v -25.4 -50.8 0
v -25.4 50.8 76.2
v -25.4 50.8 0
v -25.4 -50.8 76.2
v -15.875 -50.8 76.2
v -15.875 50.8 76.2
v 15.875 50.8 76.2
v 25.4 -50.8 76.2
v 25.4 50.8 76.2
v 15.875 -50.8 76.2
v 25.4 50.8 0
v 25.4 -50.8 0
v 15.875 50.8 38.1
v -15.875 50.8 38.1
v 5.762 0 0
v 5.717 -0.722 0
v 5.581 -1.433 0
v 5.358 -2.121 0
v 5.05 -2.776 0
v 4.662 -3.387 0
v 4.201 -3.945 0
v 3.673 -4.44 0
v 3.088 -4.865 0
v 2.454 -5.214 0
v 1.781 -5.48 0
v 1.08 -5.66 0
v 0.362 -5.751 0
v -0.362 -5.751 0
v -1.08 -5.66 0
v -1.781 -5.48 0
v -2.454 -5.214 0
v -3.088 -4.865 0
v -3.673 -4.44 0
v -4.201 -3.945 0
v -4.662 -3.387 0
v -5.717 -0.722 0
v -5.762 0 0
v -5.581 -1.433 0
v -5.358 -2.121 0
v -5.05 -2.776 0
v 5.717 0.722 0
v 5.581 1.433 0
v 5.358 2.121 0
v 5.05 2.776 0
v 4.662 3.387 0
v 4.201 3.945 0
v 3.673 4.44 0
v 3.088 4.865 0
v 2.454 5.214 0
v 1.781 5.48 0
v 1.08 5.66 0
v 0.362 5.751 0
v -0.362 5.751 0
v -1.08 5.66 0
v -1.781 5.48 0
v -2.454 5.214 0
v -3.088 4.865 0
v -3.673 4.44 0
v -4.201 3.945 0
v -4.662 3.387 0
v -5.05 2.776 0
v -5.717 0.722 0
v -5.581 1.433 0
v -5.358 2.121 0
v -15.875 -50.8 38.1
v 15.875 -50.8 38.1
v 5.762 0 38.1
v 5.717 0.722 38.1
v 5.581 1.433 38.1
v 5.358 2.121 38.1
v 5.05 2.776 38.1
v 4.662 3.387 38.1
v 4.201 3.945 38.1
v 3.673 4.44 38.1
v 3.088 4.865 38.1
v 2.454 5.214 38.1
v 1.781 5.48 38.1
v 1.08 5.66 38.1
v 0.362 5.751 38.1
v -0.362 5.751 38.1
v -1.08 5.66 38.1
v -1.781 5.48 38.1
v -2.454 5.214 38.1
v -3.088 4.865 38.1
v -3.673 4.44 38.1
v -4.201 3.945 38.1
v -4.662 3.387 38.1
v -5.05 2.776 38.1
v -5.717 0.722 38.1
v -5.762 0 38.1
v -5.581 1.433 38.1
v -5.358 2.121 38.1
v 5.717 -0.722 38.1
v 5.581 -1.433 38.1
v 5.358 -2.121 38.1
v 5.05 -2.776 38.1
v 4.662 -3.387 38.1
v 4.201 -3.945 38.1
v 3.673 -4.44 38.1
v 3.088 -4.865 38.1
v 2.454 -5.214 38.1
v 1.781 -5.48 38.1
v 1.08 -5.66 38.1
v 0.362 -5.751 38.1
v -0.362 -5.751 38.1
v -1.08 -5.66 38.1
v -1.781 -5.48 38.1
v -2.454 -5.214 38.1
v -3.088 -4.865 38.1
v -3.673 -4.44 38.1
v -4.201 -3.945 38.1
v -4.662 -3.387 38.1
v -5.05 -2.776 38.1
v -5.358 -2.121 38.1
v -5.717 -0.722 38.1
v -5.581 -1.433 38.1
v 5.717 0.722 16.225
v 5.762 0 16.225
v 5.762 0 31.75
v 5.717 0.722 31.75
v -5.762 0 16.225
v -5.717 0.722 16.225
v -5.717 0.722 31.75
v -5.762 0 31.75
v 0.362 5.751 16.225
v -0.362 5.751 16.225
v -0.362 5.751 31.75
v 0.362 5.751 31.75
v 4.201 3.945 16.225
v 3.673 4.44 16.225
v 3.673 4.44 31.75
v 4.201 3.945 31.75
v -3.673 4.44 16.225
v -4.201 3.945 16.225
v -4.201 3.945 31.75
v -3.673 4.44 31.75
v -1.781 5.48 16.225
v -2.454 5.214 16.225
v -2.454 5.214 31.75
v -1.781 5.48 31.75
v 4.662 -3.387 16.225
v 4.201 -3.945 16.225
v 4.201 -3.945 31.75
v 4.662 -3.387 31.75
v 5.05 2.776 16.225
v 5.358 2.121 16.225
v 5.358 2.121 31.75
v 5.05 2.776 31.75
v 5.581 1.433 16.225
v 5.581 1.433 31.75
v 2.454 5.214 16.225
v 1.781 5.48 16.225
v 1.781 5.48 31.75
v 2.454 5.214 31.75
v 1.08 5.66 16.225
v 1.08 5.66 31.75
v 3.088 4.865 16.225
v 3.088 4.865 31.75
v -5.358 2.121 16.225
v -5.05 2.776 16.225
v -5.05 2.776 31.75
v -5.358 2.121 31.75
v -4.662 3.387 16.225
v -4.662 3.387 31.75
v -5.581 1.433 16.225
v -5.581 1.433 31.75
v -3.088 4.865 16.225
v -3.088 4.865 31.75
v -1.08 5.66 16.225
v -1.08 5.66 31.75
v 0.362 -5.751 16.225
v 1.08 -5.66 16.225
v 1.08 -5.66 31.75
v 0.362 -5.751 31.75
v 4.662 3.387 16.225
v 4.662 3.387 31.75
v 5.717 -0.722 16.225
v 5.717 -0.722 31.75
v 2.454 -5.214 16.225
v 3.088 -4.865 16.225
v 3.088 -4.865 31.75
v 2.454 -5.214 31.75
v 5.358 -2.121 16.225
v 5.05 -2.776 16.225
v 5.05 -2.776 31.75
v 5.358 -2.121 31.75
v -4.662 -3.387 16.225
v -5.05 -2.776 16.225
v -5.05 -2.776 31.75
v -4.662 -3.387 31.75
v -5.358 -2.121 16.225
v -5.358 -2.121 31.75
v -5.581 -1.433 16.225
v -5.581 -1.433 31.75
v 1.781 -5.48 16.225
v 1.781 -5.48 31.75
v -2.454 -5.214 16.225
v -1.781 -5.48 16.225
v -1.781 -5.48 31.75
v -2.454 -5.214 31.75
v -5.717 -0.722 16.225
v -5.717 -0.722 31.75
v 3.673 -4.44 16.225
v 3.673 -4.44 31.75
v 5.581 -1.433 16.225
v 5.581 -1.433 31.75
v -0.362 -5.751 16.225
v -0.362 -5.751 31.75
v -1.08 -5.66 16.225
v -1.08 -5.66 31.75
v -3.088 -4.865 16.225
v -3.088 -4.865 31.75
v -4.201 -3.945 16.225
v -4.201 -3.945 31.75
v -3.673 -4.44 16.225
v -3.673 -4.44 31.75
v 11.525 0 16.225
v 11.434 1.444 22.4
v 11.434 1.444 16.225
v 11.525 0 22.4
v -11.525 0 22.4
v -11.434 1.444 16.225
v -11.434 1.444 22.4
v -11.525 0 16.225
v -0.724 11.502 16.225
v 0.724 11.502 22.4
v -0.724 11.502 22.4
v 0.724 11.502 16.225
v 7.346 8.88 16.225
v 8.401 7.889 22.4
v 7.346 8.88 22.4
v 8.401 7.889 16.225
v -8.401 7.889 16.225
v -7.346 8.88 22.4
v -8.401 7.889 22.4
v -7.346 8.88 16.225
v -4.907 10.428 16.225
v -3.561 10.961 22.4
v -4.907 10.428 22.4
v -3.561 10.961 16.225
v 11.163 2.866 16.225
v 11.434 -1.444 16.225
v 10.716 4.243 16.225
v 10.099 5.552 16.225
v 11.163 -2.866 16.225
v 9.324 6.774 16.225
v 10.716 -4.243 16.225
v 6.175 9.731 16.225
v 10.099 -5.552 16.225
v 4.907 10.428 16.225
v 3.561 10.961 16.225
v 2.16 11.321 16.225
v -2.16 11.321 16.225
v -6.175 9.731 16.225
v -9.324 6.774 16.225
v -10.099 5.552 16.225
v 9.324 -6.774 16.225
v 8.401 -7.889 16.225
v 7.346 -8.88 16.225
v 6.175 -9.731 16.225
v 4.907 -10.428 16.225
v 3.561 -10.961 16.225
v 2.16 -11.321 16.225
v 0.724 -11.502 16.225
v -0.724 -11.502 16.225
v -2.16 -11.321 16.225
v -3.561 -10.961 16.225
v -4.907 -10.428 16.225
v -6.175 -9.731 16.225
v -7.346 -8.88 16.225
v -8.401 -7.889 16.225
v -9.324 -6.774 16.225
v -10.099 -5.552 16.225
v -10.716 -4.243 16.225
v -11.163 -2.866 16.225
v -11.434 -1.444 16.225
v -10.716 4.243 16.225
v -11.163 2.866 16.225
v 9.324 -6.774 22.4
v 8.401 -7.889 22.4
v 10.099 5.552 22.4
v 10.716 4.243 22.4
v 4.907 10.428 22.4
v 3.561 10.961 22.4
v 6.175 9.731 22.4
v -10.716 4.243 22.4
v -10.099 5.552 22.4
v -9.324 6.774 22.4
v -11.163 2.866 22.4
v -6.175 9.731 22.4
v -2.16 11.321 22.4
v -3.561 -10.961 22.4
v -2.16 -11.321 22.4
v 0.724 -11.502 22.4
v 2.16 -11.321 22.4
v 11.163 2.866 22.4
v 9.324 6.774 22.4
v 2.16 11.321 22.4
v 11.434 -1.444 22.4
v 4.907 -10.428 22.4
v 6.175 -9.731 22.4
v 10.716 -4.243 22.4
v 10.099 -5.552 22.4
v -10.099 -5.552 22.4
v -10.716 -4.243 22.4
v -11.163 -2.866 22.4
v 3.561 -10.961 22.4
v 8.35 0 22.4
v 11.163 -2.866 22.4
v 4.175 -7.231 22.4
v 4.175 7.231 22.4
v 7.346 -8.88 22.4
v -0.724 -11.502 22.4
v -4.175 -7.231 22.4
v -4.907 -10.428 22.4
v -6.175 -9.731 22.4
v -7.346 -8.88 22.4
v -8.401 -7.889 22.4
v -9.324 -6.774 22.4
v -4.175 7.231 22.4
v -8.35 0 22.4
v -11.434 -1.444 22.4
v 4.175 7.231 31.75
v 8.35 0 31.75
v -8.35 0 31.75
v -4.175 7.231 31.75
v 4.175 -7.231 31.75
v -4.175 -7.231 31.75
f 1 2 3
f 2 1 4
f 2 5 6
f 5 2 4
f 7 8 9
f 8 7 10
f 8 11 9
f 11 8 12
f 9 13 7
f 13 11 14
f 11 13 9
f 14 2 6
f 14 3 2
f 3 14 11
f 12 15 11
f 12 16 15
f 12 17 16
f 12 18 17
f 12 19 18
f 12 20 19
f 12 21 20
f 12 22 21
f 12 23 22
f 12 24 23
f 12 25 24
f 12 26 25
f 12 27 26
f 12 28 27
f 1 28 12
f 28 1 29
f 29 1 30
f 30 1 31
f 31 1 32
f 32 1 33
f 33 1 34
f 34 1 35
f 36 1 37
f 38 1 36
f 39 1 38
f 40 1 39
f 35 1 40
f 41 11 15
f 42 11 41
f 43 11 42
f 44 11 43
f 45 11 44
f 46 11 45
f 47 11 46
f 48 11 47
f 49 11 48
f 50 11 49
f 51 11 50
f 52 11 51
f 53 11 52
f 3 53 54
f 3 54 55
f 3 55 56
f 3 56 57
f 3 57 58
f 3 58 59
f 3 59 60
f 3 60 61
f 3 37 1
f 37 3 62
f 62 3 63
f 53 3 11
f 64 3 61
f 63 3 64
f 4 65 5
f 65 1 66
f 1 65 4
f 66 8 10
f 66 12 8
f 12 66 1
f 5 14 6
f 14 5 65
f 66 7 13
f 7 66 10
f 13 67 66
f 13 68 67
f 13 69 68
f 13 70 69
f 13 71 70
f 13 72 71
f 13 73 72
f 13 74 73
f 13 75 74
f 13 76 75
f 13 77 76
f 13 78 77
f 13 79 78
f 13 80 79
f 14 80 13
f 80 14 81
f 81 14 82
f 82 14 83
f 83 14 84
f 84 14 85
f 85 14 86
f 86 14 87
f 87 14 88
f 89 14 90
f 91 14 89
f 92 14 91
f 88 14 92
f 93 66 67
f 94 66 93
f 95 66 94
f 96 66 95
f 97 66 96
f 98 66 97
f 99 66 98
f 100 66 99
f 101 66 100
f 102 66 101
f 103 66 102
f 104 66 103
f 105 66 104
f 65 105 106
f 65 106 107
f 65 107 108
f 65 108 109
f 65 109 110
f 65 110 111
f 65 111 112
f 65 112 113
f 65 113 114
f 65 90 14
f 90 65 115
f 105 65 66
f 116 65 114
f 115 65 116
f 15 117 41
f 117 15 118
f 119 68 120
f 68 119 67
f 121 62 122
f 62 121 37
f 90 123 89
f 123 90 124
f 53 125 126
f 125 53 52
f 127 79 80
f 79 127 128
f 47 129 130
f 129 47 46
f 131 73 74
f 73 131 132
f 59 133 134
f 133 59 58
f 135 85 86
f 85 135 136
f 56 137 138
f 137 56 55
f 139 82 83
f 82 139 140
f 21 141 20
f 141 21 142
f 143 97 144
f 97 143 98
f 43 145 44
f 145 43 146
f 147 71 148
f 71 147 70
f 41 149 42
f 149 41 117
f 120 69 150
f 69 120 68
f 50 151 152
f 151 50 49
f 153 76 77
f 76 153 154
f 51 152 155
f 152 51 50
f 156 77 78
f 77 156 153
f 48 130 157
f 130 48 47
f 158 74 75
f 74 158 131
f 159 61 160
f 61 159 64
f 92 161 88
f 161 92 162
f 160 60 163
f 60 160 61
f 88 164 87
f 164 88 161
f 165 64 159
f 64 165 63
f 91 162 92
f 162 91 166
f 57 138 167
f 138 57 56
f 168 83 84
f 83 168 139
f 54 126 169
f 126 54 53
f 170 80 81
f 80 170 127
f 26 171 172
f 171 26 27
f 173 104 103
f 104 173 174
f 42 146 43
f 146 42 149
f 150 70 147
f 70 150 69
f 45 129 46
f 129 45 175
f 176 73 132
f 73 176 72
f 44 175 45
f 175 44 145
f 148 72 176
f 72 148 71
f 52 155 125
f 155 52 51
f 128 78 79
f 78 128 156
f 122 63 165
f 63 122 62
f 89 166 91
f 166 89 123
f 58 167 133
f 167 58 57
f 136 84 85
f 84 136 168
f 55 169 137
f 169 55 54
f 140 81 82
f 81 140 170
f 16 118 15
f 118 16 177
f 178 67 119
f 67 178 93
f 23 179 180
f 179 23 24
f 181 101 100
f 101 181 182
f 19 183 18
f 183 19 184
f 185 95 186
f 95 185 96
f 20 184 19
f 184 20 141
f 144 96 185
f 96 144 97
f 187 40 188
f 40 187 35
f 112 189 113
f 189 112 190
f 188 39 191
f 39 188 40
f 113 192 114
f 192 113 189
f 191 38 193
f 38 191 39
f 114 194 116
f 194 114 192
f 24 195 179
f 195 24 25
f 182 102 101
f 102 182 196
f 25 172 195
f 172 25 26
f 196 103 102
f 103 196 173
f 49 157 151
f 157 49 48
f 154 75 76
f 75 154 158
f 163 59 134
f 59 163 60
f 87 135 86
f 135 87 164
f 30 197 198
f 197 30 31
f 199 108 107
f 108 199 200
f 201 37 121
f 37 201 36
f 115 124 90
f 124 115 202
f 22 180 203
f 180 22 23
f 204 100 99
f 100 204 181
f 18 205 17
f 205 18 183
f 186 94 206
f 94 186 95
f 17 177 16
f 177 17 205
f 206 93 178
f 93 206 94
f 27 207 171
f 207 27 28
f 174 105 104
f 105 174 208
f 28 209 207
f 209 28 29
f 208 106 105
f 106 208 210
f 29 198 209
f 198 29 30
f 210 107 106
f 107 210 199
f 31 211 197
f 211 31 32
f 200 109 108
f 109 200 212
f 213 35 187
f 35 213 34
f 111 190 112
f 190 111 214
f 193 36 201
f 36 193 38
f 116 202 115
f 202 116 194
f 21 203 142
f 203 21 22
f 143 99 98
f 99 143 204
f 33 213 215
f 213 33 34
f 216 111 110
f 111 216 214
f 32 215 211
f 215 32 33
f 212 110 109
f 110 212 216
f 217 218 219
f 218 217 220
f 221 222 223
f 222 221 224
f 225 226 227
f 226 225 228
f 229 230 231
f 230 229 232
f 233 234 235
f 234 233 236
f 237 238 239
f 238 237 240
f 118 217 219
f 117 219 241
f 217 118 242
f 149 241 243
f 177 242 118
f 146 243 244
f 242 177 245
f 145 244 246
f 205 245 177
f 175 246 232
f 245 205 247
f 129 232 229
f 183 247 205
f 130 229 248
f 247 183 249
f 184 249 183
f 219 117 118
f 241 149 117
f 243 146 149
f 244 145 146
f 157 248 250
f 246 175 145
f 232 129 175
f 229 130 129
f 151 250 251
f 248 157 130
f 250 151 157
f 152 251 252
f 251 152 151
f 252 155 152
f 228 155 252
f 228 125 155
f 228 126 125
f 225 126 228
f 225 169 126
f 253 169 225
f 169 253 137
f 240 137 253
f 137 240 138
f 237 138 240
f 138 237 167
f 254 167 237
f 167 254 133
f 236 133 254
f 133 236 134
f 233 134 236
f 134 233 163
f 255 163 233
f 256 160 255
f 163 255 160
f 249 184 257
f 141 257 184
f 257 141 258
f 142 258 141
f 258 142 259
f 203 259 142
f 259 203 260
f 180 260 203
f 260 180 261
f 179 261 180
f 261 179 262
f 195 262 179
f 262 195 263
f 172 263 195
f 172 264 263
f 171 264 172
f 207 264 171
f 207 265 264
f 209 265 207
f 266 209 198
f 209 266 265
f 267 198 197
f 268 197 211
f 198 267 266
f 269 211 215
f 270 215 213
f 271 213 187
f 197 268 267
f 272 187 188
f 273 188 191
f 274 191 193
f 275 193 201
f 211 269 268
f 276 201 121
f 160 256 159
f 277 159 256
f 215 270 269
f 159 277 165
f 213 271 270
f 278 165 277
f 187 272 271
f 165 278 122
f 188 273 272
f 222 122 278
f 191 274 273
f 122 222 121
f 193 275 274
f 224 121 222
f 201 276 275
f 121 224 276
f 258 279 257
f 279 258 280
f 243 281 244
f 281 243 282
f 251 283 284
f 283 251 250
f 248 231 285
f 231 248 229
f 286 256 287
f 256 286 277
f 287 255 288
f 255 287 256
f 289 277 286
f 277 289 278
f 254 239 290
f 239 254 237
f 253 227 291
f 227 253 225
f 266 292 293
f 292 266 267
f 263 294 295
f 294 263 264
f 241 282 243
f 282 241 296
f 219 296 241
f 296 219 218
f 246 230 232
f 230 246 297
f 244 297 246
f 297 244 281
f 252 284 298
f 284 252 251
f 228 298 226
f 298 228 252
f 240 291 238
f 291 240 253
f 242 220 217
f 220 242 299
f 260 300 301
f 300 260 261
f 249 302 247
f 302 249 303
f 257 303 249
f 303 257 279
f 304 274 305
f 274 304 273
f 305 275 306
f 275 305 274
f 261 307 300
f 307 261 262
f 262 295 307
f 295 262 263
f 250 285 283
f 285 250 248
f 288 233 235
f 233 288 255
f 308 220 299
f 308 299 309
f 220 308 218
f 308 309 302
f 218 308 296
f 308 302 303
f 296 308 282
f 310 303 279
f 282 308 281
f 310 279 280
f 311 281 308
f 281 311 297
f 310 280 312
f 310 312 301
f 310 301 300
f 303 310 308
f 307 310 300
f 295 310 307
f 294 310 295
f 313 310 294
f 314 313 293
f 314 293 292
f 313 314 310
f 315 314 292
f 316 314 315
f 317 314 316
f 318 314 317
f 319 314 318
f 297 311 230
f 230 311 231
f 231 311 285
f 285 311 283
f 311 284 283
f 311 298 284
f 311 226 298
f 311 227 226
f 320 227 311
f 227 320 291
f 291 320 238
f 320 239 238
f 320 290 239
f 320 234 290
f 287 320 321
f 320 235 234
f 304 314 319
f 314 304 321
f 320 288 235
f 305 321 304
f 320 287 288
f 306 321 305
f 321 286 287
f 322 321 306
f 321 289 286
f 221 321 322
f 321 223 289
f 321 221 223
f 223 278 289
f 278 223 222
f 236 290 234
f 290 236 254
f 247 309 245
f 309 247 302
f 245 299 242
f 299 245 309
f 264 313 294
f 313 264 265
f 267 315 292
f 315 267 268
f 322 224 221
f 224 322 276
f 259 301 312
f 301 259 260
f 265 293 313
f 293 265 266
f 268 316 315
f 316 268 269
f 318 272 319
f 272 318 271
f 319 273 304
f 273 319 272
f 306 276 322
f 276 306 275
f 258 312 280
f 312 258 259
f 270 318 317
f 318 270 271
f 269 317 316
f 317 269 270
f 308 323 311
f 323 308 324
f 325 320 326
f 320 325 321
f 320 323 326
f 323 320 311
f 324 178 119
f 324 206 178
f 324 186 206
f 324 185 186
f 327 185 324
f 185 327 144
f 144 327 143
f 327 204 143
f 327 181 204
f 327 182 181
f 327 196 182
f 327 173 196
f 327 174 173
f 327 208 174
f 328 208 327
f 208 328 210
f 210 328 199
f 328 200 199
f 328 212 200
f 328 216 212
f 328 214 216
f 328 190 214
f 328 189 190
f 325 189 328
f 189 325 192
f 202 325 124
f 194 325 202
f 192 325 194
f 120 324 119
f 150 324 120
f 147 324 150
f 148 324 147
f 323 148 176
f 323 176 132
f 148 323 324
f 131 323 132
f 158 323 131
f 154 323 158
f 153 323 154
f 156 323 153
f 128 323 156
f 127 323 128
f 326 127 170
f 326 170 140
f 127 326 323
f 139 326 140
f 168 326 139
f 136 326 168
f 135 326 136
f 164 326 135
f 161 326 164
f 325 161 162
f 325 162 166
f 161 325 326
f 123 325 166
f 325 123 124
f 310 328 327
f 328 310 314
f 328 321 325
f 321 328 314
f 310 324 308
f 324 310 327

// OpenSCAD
/* File: winchwireblock.scad
 * Power cable wire junction separators
 * Author: deh
 * Latest edit: 20180701
 * 
 */


 $fn=50;

bl_wid = 25.4 * 2; 	// Overall Width of one block
bl_ht  = 25.4 * 3;	// Height
bl_len = 25.4 * 4;	// Length
bl_flr = 25.4 * 1.5;	// Bottom to floor of well
bl_w_wid = 25.4 * 1.25;	// Width of wire well




module base_block()
{
	difference()
	{
		union()
		{
			translate([0,0,bl_ht/2])
		     cube([bl_wid,bl_len,bl_ht],center=true);
		}
		union()
		{
			ofz =  bl_flr + 100;
			translate([0,0,ofz])
		     cube([bl_w_wid,200,200],center=true);
		}
	}
}

/* Holes for bolt, with hex nut and washer embedding */
bl_shank_dia = .375 * 25.4 + 2; // Shank dia plus slop
bl_nut_dia = 25.4 * 0.50 + 4;	  // Nut peak-peak dia
bl_nut_thx = 25.4 * 0.25 + 3;   // Nut thickness
wa_dia     = 25.4 * .75  + 4;   // Washer dia
wa_thx     = 25.4 * .125 + 3;   // Washer thickness
wa_wall    = 25.4 * .25  + 0;   // Thickness between floor and washer top


module holes()
{
	// Shank hole goes all the way through
	cylinder(d=bl_shank_dia,h=200,center=true);
  
	// Embed washer
	ofz = bl_flr - wa_wall - bl_nut_thx - wa_thx;
	translate([0,0,ofz])
		cylinder(d=wa_dia,h=wa_thx,center=false);

	// Embed nut 
	ofz1 = ofz + wa_thx;
	translate([0,0,ofz1])
		cylinder(d=bl_nut_dia,h=bl_nut_thx,center=false,$fn=6);

}


module total()
{
	difference()
	{
		union()
		{
			base_block();
		}
		union()
		{
			holes();
		}
	}
}

total();
